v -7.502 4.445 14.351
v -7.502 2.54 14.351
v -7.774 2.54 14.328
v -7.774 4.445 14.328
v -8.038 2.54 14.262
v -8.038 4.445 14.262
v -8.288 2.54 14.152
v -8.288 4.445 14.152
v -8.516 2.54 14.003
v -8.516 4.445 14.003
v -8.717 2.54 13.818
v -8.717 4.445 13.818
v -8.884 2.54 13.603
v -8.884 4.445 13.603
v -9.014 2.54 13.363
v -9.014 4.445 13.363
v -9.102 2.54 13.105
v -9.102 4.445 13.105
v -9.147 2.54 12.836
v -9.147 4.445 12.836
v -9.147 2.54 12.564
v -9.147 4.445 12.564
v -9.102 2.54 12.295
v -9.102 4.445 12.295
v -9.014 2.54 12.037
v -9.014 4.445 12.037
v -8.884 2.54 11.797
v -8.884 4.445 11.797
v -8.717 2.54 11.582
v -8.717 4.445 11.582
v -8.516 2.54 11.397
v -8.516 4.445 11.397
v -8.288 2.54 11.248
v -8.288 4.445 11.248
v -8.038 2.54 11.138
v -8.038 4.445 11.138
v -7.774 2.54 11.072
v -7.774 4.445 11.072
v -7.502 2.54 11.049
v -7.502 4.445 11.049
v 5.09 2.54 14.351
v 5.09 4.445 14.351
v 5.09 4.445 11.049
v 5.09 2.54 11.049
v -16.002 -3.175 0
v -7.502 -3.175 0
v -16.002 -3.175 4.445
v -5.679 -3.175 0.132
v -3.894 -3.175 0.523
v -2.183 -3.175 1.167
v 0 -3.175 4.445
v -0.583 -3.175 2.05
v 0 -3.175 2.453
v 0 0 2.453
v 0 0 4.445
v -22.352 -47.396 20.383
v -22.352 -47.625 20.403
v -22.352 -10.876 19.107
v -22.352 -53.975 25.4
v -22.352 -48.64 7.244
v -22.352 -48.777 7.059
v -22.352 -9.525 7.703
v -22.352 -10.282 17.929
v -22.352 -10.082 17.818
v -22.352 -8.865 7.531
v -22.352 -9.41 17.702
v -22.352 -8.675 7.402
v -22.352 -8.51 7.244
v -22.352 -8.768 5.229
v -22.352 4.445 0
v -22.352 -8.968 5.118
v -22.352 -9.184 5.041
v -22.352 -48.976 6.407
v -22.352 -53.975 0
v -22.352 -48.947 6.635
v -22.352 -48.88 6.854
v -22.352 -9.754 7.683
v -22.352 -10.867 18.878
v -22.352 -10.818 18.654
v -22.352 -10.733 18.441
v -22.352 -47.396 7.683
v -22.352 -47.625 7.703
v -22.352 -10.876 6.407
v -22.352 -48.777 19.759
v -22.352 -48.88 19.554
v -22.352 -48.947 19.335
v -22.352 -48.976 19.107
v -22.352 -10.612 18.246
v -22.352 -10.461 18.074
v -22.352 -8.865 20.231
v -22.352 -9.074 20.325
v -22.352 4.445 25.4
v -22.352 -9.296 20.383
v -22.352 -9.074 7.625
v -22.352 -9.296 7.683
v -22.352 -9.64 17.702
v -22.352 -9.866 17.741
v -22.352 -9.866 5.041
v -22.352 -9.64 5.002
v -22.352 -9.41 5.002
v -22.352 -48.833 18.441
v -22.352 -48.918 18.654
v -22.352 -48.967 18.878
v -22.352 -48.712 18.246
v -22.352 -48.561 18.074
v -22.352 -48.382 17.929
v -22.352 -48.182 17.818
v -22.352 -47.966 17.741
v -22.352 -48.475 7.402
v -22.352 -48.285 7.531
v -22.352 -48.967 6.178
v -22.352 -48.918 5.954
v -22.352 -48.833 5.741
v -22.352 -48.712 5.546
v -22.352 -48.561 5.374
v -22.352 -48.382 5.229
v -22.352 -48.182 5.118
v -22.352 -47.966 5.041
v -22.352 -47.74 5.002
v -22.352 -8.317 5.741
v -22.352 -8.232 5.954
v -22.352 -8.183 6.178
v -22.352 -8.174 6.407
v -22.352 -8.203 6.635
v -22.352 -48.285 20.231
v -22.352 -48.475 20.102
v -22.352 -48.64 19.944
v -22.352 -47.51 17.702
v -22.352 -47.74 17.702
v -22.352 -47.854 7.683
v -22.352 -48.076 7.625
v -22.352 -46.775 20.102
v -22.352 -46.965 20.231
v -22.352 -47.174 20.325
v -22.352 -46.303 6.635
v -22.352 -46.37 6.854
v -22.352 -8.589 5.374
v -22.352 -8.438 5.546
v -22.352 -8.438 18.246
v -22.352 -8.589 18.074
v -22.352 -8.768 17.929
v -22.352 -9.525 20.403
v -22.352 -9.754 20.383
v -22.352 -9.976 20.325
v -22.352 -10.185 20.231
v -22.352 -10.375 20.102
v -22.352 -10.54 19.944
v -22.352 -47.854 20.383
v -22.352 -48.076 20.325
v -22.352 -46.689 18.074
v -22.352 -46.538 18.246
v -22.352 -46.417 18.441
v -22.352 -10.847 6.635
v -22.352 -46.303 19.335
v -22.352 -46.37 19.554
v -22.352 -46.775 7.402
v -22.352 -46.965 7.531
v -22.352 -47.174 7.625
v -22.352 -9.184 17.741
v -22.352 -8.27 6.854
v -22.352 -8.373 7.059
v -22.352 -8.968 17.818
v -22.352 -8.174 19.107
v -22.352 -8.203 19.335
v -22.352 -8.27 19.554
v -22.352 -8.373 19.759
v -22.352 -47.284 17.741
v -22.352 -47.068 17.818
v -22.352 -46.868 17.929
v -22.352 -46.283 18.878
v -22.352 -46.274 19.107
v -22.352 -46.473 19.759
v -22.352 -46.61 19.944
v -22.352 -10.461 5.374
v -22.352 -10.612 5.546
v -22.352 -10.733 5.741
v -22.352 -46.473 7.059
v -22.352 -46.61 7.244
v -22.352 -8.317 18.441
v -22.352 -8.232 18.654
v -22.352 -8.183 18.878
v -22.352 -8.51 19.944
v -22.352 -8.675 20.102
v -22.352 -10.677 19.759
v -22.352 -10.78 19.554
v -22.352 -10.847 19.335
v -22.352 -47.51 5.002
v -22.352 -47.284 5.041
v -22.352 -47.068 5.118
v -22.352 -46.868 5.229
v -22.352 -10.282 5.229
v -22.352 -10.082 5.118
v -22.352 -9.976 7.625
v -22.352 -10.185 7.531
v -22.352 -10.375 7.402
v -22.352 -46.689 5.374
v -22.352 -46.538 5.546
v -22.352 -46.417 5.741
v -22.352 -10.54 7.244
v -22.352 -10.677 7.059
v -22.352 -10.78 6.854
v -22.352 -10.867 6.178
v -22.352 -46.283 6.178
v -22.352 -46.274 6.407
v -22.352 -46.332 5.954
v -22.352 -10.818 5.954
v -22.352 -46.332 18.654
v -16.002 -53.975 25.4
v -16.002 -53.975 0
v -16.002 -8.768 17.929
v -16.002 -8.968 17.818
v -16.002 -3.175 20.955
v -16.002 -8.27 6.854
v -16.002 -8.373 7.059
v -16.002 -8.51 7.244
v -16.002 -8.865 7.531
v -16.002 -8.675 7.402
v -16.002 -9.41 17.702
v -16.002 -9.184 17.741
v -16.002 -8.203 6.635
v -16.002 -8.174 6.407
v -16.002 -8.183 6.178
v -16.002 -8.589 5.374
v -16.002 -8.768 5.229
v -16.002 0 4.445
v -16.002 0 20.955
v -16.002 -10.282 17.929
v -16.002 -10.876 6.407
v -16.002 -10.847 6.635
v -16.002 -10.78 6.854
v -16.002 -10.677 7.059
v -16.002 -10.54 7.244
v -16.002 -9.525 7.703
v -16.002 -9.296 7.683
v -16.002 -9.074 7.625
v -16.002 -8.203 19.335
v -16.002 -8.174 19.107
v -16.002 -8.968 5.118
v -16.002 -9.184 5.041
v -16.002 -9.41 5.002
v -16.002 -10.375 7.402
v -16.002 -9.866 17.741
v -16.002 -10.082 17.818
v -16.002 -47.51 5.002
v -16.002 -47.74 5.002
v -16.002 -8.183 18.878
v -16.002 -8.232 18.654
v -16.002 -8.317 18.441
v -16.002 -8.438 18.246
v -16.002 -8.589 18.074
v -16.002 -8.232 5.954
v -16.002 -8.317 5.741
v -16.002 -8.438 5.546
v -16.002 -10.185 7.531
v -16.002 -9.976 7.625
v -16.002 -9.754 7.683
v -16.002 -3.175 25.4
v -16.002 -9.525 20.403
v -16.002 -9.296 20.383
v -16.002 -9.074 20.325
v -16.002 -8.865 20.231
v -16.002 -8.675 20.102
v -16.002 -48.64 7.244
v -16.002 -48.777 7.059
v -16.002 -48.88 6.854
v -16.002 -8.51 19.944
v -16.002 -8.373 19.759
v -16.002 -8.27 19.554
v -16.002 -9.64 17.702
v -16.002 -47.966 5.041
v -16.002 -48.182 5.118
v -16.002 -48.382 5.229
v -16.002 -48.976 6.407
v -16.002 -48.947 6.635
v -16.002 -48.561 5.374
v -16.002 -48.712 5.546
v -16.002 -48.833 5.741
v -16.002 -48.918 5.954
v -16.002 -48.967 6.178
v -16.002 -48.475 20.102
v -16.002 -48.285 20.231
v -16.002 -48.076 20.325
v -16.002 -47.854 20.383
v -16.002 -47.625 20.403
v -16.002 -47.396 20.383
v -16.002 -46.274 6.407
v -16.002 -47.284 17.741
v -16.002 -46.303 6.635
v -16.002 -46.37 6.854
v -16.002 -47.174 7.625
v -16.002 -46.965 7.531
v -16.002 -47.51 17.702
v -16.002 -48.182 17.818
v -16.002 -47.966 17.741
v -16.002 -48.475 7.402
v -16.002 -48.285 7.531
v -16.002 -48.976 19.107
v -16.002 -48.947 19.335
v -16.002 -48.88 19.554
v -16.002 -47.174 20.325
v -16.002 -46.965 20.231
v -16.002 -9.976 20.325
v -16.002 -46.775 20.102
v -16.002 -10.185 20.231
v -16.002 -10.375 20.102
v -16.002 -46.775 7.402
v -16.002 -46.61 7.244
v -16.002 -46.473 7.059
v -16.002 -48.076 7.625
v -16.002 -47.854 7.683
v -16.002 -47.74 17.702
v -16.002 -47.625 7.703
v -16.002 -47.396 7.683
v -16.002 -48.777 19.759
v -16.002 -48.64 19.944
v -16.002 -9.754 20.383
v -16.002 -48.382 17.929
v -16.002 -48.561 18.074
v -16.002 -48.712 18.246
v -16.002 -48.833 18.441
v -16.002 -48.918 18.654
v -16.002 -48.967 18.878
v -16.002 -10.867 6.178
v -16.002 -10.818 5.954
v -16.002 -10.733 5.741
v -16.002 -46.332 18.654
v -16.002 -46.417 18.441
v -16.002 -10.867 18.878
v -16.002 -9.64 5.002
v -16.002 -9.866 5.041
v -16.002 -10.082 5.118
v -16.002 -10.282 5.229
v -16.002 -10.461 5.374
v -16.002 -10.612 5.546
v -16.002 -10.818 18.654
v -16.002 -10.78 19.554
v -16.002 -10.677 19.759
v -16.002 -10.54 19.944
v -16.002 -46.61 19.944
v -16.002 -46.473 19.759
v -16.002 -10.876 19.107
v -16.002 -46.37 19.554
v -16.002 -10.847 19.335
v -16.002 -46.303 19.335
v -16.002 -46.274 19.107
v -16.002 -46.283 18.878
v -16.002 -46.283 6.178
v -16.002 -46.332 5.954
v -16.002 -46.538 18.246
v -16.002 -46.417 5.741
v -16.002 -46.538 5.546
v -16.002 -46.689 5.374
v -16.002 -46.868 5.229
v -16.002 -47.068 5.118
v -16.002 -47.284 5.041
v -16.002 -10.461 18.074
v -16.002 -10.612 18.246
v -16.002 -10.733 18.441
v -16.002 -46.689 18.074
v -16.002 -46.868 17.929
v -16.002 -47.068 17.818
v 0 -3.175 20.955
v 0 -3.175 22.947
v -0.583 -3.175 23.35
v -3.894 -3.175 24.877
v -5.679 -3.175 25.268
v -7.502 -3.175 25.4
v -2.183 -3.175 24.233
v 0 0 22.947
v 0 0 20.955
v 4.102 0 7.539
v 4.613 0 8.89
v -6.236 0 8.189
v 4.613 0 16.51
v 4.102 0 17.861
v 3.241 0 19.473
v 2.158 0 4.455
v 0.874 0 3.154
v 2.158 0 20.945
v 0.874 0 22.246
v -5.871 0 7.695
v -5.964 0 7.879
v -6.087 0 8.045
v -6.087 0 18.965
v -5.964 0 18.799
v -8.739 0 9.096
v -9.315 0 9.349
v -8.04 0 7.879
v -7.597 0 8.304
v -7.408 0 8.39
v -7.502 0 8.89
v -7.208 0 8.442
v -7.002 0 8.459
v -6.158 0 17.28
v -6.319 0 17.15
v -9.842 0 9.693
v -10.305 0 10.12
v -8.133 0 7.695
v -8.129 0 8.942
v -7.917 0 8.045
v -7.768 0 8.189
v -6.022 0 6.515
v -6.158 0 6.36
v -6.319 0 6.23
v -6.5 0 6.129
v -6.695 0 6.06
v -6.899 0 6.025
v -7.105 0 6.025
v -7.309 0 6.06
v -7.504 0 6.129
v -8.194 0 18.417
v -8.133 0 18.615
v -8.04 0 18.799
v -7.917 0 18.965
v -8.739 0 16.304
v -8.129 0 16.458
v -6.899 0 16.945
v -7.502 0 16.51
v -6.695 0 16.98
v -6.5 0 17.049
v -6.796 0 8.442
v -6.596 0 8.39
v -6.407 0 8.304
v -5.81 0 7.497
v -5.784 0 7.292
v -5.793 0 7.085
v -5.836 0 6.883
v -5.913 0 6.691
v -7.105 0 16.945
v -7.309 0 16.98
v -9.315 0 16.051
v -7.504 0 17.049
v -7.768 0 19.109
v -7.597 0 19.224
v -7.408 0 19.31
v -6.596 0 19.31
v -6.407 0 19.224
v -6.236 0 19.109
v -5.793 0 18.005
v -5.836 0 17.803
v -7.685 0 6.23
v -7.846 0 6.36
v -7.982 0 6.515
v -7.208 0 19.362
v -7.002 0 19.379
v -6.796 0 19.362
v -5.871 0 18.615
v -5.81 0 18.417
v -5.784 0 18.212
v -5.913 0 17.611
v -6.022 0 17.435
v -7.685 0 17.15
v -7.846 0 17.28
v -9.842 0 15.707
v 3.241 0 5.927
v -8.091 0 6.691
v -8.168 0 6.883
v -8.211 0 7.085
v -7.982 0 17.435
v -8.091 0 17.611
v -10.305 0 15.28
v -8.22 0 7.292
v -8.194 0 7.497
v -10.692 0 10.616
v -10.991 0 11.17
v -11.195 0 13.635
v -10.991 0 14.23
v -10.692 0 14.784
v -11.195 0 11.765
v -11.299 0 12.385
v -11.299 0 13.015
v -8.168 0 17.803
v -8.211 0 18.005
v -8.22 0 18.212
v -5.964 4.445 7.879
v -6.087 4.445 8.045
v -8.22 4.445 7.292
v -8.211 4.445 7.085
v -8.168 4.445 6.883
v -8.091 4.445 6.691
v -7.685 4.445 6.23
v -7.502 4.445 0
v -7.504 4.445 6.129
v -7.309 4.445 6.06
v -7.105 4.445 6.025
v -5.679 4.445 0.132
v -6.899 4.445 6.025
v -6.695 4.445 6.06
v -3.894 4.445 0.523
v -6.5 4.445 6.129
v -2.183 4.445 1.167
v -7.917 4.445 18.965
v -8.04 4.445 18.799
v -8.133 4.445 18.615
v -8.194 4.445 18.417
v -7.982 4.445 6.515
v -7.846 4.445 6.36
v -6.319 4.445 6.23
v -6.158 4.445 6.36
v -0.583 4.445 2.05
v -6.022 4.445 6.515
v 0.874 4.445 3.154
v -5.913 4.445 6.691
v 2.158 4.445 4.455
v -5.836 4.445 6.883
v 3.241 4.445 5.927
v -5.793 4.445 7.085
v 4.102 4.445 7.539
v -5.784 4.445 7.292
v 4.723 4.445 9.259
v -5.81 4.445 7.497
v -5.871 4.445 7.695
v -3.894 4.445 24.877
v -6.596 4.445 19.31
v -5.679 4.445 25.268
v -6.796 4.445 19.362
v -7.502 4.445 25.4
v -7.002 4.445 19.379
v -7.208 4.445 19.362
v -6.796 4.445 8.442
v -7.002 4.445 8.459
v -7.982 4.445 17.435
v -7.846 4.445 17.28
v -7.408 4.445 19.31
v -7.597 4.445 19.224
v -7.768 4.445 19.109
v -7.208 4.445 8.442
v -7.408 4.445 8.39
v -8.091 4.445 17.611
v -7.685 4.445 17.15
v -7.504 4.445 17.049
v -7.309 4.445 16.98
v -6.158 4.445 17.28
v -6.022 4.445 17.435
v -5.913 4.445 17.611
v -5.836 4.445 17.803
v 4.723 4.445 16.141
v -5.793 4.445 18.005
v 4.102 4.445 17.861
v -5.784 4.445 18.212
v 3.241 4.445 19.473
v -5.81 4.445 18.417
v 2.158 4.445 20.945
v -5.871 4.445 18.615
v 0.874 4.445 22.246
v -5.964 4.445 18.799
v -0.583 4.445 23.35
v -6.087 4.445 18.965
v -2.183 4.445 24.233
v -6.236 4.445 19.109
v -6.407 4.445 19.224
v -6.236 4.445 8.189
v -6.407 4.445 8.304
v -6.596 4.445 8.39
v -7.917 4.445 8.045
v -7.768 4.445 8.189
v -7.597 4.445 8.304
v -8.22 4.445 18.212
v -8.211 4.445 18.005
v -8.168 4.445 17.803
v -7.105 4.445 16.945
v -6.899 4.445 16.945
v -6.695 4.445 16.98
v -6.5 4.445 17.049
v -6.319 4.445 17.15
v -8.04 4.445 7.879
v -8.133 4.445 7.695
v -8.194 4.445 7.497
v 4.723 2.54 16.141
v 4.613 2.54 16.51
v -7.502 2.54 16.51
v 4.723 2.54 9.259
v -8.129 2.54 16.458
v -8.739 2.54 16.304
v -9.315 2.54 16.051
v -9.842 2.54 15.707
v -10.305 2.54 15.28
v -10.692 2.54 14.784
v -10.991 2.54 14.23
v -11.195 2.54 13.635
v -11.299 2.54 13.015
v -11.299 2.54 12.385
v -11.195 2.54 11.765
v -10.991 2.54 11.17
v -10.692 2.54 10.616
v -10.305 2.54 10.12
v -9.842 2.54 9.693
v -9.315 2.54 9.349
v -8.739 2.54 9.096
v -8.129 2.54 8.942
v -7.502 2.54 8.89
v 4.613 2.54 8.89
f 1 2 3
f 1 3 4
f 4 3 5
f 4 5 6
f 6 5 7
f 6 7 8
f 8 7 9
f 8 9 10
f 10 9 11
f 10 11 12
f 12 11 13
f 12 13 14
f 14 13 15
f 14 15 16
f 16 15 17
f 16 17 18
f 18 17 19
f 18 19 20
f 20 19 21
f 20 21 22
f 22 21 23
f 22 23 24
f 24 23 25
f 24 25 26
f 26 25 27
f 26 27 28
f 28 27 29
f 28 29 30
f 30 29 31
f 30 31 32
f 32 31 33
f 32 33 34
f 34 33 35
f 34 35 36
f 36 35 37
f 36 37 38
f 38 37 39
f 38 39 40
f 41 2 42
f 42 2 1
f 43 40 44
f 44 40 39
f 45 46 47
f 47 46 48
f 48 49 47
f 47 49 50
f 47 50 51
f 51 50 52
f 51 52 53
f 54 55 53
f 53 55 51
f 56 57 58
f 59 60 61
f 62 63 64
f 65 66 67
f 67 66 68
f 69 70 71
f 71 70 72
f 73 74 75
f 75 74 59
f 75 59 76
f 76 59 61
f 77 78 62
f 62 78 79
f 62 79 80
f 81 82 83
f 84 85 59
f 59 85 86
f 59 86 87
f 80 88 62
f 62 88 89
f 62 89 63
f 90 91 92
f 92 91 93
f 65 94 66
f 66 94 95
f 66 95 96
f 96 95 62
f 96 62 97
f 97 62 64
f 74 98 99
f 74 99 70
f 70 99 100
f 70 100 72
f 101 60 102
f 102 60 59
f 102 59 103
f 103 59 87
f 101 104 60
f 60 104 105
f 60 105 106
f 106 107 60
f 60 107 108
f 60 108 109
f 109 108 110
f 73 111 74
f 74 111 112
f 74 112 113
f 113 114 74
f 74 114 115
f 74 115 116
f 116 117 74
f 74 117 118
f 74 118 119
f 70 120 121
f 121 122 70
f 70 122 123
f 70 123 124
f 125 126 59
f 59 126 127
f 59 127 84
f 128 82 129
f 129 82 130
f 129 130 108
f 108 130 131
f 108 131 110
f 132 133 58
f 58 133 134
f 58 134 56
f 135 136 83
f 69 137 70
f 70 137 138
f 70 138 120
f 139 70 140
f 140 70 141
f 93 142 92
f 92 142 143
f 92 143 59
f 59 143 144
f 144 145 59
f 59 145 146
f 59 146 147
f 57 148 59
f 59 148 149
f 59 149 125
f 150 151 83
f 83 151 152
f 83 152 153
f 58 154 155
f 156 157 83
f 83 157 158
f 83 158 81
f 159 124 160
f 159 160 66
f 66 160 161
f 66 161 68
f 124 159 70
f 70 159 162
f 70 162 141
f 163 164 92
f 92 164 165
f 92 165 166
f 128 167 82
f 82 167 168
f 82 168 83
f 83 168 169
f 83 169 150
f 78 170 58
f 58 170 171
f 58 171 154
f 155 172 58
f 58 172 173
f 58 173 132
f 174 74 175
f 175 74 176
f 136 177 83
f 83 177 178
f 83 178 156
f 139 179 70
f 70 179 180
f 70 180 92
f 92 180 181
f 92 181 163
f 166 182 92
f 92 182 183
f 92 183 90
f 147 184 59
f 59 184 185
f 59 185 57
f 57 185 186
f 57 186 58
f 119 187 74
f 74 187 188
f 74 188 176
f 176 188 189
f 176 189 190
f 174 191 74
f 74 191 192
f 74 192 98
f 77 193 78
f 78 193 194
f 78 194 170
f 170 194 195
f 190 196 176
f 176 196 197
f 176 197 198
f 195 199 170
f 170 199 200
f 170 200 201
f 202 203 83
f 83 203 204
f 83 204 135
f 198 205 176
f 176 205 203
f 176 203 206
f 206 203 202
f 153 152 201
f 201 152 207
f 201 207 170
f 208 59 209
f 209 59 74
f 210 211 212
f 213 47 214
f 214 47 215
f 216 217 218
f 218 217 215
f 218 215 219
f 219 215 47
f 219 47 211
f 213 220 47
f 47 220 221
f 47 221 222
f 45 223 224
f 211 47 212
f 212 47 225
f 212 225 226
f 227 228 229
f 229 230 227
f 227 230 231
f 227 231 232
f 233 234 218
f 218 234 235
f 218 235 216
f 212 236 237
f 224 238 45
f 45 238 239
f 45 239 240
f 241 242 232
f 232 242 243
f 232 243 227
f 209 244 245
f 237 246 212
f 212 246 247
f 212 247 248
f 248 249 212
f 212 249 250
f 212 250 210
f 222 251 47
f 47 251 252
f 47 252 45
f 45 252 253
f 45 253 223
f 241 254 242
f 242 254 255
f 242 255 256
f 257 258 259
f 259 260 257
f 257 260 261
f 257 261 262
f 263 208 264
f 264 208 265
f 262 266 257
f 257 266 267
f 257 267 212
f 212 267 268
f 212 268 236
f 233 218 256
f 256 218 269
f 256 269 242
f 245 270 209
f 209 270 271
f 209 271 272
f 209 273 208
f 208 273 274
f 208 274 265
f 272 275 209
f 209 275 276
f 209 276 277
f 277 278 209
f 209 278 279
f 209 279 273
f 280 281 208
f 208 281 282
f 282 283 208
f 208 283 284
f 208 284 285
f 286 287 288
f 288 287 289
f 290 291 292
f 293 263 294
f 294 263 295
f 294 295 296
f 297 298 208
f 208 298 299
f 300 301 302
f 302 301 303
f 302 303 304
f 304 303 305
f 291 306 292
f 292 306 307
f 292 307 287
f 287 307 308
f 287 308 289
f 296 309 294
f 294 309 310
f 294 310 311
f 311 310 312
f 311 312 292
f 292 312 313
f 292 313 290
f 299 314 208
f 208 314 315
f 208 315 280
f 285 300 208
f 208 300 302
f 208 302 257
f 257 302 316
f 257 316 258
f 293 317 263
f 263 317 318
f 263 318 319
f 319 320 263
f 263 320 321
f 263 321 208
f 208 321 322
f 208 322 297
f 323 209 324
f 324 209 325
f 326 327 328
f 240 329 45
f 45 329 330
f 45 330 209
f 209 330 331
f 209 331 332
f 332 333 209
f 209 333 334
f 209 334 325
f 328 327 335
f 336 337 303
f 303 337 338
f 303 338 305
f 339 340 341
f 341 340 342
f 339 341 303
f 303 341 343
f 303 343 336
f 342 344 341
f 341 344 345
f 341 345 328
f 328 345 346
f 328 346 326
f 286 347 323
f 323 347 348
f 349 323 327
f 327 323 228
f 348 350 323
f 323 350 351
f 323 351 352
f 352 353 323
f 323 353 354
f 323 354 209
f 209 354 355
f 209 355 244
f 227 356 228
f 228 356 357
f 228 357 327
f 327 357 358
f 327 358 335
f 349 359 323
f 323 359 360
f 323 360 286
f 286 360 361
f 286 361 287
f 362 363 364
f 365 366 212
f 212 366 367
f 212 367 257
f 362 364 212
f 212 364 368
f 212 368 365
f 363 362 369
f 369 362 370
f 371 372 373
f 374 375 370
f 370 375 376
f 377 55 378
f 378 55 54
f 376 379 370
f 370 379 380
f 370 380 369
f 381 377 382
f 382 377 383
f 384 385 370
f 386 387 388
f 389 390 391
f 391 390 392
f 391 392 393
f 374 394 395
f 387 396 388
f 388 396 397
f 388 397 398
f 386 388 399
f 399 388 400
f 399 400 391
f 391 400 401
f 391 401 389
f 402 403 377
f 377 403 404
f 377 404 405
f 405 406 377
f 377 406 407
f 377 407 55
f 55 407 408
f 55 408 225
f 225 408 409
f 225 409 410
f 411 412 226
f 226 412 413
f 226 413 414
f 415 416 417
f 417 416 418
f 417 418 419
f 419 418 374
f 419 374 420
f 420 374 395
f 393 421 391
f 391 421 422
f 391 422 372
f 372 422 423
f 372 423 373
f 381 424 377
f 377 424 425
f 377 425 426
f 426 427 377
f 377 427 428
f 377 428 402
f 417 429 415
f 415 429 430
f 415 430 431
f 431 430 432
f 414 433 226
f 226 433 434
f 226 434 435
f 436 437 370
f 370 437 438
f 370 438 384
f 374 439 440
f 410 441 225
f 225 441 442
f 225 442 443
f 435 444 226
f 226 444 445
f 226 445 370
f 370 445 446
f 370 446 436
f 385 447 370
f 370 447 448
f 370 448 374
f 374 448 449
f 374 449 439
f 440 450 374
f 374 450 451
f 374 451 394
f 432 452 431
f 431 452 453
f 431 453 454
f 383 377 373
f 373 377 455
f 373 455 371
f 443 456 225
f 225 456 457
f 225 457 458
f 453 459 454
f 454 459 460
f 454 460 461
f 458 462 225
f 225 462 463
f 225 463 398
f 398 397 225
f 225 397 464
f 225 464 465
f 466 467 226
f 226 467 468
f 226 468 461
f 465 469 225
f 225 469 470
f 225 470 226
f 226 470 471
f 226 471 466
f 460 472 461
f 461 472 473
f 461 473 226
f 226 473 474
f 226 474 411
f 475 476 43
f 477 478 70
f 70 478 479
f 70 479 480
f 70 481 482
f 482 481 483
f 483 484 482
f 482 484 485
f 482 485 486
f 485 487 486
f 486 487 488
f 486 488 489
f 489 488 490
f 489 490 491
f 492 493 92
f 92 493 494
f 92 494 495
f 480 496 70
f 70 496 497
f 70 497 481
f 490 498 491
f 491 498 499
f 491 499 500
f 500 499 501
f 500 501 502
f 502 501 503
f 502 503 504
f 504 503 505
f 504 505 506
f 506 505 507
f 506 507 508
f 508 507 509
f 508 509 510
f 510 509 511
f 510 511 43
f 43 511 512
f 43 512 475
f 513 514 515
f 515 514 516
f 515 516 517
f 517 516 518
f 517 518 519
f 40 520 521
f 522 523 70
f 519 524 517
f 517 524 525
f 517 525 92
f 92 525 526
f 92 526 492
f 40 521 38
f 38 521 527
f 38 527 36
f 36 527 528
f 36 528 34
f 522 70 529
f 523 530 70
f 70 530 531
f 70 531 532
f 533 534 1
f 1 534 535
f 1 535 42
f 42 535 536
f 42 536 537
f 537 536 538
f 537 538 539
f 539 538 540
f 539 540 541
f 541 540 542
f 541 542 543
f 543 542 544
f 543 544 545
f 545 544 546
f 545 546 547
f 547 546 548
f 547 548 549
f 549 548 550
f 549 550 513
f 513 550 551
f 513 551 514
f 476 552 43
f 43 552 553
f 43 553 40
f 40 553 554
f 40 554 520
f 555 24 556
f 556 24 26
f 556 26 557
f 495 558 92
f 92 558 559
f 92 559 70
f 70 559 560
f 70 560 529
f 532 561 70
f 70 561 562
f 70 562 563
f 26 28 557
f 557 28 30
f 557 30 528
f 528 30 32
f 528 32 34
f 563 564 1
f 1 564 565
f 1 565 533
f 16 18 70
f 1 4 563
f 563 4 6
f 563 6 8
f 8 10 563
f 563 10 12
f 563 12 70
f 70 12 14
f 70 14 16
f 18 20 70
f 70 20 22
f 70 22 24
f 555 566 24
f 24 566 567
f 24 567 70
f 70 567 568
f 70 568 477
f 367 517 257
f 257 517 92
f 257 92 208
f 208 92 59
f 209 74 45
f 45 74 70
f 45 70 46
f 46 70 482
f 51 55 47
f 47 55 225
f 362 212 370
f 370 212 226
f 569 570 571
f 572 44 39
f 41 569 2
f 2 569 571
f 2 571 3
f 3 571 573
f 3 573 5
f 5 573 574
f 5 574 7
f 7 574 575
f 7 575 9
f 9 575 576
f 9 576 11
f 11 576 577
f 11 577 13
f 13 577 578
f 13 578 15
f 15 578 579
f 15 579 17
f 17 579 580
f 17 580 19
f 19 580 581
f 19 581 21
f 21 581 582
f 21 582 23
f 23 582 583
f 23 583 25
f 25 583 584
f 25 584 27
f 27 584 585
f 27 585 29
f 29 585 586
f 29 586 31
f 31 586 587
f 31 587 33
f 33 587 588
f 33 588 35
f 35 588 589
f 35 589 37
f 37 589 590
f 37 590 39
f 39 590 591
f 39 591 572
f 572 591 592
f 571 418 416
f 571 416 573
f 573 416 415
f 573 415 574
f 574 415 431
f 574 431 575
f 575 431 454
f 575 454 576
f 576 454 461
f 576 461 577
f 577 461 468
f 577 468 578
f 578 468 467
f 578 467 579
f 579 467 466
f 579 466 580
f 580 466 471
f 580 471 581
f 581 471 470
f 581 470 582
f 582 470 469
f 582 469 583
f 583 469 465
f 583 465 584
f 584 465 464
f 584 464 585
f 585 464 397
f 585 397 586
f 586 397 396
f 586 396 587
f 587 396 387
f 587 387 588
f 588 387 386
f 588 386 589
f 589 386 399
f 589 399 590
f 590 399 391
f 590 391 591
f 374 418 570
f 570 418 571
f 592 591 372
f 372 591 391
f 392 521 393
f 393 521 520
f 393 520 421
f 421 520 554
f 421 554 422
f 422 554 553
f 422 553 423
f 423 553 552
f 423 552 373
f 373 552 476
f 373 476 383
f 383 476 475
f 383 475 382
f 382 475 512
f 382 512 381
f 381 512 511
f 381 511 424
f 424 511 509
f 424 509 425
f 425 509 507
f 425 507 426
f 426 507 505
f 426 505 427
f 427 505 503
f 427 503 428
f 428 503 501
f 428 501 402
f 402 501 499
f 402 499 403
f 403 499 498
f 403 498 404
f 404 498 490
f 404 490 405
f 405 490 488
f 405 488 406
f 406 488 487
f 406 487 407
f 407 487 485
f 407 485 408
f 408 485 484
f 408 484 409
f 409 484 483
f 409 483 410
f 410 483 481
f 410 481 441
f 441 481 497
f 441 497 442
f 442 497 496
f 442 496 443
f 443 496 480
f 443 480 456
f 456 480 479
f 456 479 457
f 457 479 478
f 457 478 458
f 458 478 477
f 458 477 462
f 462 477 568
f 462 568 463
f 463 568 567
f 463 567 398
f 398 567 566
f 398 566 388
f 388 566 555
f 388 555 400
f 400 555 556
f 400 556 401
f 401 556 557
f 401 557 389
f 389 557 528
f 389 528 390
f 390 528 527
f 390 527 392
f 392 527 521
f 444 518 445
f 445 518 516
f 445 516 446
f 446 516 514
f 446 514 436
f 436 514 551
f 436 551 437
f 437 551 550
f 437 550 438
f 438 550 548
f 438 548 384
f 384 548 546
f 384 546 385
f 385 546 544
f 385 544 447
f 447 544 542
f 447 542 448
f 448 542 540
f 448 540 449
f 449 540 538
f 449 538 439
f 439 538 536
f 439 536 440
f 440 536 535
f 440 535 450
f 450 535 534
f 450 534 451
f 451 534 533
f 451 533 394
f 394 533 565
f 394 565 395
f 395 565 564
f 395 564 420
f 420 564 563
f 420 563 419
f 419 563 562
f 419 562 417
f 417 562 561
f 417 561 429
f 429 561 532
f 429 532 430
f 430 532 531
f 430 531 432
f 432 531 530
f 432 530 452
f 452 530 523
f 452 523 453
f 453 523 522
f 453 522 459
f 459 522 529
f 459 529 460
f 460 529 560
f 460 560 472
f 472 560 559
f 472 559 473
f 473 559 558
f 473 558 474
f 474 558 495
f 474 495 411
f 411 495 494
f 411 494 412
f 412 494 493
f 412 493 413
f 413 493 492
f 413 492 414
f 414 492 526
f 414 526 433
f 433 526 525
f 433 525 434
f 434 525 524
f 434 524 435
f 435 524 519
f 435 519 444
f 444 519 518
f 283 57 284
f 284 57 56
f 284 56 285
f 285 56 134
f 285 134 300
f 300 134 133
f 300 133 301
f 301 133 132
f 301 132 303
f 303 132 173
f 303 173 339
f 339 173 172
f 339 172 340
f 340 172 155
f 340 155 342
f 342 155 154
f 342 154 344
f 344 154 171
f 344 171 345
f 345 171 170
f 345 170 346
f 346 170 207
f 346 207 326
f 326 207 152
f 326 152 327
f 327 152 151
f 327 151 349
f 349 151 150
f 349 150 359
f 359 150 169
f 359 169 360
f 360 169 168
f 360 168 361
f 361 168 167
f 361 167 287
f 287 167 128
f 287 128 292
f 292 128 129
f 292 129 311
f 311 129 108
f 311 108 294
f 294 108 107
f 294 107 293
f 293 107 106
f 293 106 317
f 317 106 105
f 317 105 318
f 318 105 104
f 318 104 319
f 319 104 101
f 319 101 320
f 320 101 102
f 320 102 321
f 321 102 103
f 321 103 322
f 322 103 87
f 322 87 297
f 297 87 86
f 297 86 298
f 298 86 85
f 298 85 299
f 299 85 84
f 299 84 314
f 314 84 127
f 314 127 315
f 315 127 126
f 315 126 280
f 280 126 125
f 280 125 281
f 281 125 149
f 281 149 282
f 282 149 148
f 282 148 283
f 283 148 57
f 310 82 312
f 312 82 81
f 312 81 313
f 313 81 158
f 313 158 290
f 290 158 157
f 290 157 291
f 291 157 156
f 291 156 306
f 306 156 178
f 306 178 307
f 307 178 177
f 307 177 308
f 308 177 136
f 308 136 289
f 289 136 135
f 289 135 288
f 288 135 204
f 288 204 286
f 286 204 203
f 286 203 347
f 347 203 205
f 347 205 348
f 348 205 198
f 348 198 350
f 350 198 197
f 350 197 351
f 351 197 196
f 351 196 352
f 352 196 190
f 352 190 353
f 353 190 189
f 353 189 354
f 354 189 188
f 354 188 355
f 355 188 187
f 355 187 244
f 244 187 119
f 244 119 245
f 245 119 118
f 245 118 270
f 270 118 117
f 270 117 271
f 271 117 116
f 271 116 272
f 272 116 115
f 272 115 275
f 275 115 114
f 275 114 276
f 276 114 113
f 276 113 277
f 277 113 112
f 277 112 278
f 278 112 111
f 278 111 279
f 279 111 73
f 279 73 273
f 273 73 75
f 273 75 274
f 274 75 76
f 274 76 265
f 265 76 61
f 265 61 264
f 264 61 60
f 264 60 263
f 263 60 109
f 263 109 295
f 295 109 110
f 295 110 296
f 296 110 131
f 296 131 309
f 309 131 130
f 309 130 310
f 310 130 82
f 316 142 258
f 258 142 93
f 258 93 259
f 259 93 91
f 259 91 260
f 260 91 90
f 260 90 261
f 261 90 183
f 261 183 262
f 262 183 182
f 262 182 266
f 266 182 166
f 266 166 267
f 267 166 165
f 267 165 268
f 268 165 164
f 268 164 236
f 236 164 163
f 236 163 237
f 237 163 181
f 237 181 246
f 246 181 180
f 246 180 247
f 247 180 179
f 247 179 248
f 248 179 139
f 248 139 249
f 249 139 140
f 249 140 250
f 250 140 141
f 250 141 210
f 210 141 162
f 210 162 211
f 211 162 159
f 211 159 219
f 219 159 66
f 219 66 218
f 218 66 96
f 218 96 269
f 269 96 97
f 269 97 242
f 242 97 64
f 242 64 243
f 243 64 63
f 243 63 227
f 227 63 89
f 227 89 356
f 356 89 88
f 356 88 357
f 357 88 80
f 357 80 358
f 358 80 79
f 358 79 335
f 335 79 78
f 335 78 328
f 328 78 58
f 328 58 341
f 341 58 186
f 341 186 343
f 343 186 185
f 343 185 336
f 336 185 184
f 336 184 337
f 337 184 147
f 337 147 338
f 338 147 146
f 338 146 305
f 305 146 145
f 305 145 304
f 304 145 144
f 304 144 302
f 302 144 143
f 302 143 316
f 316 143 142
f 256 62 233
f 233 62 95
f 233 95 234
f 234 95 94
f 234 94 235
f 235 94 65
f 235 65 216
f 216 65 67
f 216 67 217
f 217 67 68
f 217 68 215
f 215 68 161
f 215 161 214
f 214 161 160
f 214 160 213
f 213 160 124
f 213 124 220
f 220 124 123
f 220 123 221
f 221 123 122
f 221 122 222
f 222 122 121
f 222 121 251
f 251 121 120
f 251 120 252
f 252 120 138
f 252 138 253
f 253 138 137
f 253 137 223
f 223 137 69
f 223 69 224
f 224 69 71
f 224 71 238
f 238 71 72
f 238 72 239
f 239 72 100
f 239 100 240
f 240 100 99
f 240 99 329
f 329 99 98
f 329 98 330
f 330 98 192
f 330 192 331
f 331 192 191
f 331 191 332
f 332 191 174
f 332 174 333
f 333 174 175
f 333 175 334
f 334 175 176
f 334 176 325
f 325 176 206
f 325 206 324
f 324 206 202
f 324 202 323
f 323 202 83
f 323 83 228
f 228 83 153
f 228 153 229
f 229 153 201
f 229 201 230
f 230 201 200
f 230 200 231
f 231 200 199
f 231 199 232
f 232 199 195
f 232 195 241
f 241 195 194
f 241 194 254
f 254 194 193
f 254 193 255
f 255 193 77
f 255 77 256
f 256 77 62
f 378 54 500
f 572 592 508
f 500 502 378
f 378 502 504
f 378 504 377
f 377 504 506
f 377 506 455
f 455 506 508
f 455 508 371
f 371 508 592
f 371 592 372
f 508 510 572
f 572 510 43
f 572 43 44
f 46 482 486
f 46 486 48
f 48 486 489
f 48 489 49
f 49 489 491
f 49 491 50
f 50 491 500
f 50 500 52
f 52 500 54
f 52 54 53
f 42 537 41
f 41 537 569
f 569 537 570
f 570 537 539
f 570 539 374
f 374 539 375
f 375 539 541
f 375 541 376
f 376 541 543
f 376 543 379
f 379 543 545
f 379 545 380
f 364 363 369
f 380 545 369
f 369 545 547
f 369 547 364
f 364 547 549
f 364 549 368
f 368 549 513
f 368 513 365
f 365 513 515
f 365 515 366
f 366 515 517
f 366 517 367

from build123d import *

# Parameters (mm, degrees)
BOSS_EXTRUDE1_DEPTH       = 25.4
SKETCH2_W                 = 16.51
SKETCH2_H                 = 1.964574829
SKETCH2_H_2               = 1.210425171
CUT_EXTRUDE1_DEPTH        = 16.002
CUT_EXTRUDE2_DEPTH        = 4.445
CUT_EXTRUDE3_DEPTH        = 2.54
FILLET1_R                 = 12.7
F_2_CLEARANCE_HOLE1_D     = 2.4384
F_2_CLEARANCE_HOLE1_DEPTH = 25.4
F_2_CLEARANCE_HOLE1_TIP   = 0.732569267
F_6_32_TAPPED_HOLE1_D     = 2.7051
F_6_32_TAPPED_HOLE1_DEPTH = 9.398
F_6_32_TAPPED_HOLE1_TIP   = 0.81269403
CUT_EXTRUDE4_REACH        = 70.674


with BuildPart() as part:
    # Sketch1 → Boss-Extrude1 (new body)
    with BuildSketch(Plane.XY):
        Polygon((-22.352, -53.975), (-16.002, -53.975), (-16.002, -3.175), (0, -3.175), (0, 0), (25.654, 0), (25.654, 4.445), (-22.352, 4.445), align=None)
    extrude(amount=BOSS_EXTRUDE1_DEPTH)

    # Sketch2 → Cut-Extrude1 (cut)
    with BuildSketch(Plane(origin=(0, 0, 0), x_dir=(0, 0, -1), z_dir=(1, 0, 0))):
        with Locations((-12.7, -0.982287415)):
            Rectangle(SKETCH2_W, SKETCH2_H)
        with Locations((-12.7, -2.569787415)):
            Rectangle(SKETCH2_W, SKETCH2_H_2)
    extrude(amount=-CUT_EXTRUDE1_DEPTH, mode=Mode.SUBTRACT)

    # Sketch3 → Cut-Extrude2 (cut)
    with BuildSketch(Plane.XZ):
        with BuildLine():
            Line((-7.502, 14.351), (11.5, 14.351))
            ThreePointArc((11.5, 14.351), (13.151, 12.7), (11.5, 11.049))
            Line((11.5, 11.049), (-7.502, 11.049))
            ThreePointArc((-7.502, 11.049), (-9.153, 12.7), (-7.502, 14.351))
        make_face()
    extrude(amount=-CUT_EXTRUDE2_DEPTH, mode=Mode.SUBTRACT)

    # Sketch4 → Cut-Extrude3 (cut)
    with BuildSketch(Plane.XZ):
        with BuildLine():
            Line((-7.502, 16.51), (11.5, 16.51))
            ThreePointArc((11.5, 16.51), (15.31, 12.7), (11.5, 8.89))
            Line((11.5, 8.89), (-7.502, 8.89))
            ThreePointArc((-7.502, 8.89), (-11.312, 12.7), (-7.502, 16.51))
        make_face()
    extrude(amount=-CUT_EXTRUDE3_DEPTH, mode=Mode.SUBTRACT)

    # Fillet1
    fillet1_edges = [part.edges().sort_by_distance(p)[0] for p in [
        (25.654, 2.2225, 0),
        (25.654, 2.2225, 25.4),
    ]]
    fillet(fillet1_edges, radius=FILLET1_R - 0.0001)  # a hair under: the kernel refuses the full size

    # #2 Clearance Hole1
    with Locations(Plane(origin=(0, 4.445, 0), x_dir=(1, 0, 0), z_dir=(0, 1, 0))):
        with Locations((-7.002, -18.16), (-7.002, -7.24)):
            Hole(F_2_CLEARANCE_HOLE1_D / 2, depth=F_2_CLEARANCE_HOLE1_DEPTH)
            with Locations((0, 0, -(F_2_CLEARANCE_HOLE1_DEPTH + F_2_CLEARANCE_HOLE1_TIP / 2))):  # 118° drill point
                Cone(0, F_2_CLEARANCE_HOLE1_D / 2, F_2_CLEARANCE_HOLE1_TIP, mode=Mode.SUBTRACT)

    # #6-32 Tapped Hole1
    with Locations(Plane.ZY.offset(22.352)):
        with Locations((6.35, -9.525), (19.05, -9.525), (6.35, -47.625), (19.05, -47.625)):
            Hole(F_6_32_TAPPED_HOLE1_D / 2, depth=F_6_32_TAPPED_HOLE1_DEPTH)
            with Locations((0, 0, -(F_6_32_TAPPED_HOLE1_DEPTH + F_6_32_TAPPED_HOLE1_TIP / 2))):  # 118° drill point
                Cone(0, F_6_32_TAPPED_HOLE1_D / 2, F_6_32_TAPPED_HOLE1_TIP, mode=Mode.SUBTRACT)

    # Cut-Extrude4: up to this face of the body (flat: up to its plane)
    cut_extrude4_end = Plane(part.part.faces().sort_by_distance((-8.001, -3.175, 23.1775))[0])
    # Sketch10 → Cut-Extrude4 (cut, up to the picked face)
    with BuildSketch(Plane(origin=(0, 4.445, 0), x_dir=(1, 0, 0), z_dir=(0, 1, 0)), mode=Mode.PRIVATE) as cut_extrude4_sk1:
        with BuildLine():
            Line((-7.502, -25.4), (30.598, -25.4))
            Line((30.598, -25.4), (30.598, 0))
            Line((30.598, 0), (-7.502, 0))
            ThreePointArc((-7.502, 0), (5.198, -12.7), (-7.502, -25.4))
        make_face()
    cut_extrude4_tool1 = split(extrude(cut_extrude4_sk1.sketch, amount=-CUT_EXTRUDE4_REACH, mode=Mode.PRIVATE), bisect_by=cut_extrude4_end, keep=Keep.BOTH, mode=Mode.PRIVATE)
    add(cut_extrude4_tool1.solids().sort_by(Axis((16.392438, 4.445, 12.7), (0, -1, 0)))[0], mode=Mode.SUBTRACT)


solid = part.part
